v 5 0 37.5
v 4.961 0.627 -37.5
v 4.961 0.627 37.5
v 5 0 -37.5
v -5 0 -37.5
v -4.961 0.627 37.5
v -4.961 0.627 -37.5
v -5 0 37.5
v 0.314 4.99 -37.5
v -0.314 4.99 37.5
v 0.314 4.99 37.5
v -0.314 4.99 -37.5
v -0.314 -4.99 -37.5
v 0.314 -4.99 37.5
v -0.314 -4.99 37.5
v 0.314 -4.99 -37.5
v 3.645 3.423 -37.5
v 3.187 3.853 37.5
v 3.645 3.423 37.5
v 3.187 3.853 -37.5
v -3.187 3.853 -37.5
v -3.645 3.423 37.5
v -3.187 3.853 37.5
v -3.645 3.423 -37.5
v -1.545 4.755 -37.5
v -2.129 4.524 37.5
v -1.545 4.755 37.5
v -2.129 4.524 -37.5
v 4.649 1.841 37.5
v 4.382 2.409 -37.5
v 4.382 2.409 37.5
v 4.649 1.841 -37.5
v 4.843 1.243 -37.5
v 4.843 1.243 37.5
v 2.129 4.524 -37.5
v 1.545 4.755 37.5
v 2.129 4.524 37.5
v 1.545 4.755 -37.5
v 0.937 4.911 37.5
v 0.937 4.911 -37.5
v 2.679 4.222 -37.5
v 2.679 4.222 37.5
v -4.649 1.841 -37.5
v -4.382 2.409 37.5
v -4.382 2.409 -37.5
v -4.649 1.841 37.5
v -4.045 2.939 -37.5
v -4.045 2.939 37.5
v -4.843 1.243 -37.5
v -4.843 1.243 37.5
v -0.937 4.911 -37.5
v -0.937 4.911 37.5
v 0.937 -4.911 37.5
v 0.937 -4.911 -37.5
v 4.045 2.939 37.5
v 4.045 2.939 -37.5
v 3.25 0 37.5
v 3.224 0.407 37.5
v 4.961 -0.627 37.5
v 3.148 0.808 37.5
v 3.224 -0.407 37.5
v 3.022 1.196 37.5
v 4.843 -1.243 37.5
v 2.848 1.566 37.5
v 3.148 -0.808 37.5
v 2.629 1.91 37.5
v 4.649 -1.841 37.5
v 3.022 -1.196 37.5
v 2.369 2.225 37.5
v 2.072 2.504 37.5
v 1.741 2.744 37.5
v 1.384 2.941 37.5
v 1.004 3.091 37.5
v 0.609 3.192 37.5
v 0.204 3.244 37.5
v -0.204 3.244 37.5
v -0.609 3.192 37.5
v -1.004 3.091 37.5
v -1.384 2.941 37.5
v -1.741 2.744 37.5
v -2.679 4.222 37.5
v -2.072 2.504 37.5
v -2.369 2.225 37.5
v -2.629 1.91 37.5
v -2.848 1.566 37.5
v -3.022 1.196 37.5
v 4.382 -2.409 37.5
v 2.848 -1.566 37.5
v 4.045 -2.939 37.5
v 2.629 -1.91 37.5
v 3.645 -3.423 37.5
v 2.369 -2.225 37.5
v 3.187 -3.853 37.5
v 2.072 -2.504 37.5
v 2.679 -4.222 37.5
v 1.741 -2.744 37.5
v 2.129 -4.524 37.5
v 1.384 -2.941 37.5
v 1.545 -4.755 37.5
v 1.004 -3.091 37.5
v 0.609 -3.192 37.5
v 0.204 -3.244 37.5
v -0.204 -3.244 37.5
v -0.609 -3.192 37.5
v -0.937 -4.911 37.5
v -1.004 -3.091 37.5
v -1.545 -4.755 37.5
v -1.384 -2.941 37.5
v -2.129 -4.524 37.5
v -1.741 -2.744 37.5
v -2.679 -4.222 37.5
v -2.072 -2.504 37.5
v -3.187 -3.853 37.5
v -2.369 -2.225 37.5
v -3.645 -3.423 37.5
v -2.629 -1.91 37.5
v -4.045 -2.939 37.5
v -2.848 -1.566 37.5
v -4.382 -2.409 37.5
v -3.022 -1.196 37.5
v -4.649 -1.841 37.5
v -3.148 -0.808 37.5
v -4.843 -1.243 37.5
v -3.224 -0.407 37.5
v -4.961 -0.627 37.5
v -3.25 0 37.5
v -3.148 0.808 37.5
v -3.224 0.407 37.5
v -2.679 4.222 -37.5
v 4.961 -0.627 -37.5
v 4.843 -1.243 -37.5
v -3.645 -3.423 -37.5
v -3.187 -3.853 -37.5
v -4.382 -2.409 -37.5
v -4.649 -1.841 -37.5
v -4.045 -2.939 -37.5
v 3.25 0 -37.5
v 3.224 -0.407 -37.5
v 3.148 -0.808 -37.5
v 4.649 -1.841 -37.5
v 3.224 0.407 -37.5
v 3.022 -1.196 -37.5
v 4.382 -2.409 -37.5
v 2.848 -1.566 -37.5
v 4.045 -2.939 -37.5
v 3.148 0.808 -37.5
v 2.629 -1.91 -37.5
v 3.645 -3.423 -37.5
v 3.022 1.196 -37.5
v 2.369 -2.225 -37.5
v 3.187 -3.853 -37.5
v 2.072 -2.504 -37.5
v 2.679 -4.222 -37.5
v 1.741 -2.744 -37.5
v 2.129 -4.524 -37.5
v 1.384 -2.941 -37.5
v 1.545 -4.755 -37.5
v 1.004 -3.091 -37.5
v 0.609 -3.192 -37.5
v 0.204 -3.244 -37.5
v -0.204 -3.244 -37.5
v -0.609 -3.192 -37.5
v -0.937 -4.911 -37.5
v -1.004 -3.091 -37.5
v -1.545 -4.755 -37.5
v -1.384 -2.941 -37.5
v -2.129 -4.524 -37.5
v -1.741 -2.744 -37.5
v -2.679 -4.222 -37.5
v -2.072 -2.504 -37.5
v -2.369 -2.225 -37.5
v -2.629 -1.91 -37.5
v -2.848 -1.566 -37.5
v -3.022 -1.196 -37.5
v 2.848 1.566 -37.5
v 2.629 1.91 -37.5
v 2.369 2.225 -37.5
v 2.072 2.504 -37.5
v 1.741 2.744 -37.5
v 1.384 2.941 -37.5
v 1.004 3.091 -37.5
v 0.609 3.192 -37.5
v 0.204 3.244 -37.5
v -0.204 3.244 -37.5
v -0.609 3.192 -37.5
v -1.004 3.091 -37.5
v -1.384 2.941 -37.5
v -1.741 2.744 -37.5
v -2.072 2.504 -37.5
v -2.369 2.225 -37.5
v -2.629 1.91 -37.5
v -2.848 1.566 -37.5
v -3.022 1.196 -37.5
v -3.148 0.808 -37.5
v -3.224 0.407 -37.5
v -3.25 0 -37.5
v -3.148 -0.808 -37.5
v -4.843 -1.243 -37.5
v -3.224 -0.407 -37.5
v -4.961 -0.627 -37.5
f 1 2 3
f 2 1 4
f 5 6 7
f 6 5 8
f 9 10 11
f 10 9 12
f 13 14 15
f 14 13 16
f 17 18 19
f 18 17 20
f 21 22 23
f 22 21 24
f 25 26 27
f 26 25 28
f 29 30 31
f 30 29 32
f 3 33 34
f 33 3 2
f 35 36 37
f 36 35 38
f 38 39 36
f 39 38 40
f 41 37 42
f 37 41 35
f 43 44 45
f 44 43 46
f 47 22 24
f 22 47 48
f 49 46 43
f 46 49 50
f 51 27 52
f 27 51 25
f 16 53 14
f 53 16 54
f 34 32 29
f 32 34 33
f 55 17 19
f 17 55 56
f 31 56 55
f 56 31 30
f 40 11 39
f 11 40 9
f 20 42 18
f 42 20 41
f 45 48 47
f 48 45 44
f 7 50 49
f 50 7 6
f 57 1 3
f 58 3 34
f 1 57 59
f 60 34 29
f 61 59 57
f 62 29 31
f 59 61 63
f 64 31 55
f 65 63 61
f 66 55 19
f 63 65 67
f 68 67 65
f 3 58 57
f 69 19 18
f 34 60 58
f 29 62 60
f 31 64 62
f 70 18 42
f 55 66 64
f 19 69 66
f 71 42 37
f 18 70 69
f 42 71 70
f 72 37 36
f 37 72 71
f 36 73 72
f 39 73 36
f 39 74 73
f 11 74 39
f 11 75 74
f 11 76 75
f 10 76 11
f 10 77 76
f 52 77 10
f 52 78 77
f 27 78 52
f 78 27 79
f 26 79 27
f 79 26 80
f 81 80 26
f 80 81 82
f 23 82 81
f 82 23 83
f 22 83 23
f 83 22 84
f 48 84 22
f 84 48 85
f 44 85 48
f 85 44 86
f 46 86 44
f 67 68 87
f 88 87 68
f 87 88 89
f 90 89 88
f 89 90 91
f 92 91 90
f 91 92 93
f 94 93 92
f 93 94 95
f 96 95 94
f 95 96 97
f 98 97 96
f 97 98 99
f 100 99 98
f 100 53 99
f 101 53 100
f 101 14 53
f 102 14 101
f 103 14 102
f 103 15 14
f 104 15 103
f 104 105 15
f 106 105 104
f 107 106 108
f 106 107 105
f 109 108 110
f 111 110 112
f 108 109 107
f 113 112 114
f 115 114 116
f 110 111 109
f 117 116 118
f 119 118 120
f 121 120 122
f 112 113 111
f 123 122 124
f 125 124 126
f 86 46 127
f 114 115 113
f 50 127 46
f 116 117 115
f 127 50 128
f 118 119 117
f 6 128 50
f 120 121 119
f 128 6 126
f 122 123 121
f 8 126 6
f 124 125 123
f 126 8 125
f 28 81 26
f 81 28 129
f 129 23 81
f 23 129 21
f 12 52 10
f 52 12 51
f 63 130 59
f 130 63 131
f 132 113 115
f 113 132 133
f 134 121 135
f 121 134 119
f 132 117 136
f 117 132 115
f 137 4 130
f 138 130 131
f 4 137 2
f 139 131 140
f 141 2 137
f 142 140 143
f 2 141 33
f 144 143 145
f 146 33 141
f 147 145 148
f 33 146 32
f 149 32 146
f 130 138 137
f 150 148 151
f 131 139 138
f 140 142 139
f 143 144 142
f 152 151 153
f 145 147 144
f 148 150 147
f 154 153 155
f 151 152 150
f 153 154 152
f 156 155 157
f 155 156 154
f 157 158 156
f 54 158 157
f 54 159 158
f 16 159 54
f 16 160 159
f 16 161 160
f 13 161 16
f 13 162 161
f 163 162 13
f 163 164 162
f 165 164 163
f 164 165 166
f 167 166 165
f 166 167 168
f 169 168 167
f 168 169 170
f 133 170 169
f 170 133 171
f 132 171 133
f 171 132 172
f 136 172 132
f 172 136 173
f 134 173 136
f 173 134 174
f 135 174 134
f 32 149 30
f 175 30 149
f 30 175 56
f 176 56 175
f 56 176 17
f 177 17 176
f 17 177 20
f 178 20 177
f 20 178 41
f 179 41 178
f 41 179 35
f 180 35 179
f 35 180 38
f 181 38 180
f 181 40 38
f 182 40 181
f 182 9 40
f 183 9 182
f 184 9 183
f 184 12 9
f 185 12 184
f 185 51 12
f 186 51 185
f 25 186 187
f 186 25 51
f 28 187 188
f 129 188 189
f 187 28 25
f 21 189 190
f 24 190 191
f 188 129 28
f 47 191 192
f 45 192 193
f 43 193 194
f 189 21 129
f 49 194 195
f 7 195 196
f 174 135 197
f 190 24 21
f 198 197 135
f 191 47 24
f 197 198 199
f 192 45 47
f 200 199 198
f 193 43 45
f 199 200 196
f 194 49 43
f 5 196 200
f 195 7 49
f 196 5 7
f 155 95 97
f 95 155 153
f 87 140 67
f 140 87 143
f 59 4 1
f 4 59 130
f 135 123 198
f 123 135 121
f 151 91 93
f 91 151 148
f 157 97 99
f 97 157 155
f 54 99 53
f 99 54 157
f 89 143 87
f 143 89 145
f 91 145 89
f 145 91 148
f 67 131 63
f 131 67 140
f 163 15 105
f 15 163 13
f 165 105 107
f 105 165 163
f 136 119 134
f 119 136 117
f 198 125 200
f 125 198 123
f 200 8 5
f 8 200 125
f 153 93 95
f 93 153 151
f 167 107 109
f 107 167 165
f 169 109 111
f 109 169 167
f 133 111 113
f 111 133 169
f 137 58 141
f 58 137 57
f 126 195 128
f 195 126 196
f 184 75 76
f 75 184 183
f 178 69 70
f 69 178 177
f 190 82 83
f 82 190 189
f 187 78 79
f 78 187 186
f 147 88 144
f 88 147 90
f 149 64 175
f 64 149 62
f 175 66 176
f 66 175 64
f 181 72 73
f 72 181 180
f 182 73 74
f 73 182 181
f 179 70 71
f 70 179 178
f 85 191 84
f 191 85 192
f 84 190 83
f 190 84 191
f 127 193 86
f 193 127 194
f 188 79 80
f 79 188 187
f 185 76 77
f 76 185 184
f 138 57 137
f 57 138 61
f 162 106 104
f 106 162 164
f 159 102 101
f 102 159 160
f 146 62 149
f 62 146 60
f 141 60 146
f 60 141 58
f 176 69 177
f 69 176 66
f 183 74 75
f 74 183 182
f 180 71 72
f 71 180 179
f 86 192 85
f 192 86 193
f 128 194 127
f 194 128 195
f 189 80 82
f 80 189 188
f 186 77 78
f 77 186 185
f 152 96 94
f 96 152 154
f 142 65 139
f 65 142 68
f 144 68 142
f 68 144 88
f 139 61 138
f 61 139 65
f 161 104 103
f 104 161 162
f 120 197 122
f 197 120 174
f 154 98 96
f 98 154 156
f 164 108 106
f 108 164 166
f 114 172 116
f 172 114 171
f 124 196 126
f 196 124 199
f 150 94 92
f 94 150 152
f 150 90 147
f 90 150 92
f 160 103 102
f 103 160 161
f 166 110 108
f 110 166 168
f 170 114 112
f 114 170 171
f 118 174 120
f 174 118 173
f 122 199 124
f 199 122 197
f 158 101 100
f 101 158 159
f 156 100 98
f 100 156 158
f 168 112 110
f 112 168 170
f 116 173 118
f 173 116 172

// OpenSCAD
$fn = 50;


difference() {
	union() {
		translate(v = [0, 0, -37.5000000000]) {
			cylinder(h = 75, r = 5.0000000000);
		}
	}
	union() {
		translate(v = [0, 0, -100.0000000000]) {
			cylinder(h = 200, r = 3.2500000000);
		}
	}
}
